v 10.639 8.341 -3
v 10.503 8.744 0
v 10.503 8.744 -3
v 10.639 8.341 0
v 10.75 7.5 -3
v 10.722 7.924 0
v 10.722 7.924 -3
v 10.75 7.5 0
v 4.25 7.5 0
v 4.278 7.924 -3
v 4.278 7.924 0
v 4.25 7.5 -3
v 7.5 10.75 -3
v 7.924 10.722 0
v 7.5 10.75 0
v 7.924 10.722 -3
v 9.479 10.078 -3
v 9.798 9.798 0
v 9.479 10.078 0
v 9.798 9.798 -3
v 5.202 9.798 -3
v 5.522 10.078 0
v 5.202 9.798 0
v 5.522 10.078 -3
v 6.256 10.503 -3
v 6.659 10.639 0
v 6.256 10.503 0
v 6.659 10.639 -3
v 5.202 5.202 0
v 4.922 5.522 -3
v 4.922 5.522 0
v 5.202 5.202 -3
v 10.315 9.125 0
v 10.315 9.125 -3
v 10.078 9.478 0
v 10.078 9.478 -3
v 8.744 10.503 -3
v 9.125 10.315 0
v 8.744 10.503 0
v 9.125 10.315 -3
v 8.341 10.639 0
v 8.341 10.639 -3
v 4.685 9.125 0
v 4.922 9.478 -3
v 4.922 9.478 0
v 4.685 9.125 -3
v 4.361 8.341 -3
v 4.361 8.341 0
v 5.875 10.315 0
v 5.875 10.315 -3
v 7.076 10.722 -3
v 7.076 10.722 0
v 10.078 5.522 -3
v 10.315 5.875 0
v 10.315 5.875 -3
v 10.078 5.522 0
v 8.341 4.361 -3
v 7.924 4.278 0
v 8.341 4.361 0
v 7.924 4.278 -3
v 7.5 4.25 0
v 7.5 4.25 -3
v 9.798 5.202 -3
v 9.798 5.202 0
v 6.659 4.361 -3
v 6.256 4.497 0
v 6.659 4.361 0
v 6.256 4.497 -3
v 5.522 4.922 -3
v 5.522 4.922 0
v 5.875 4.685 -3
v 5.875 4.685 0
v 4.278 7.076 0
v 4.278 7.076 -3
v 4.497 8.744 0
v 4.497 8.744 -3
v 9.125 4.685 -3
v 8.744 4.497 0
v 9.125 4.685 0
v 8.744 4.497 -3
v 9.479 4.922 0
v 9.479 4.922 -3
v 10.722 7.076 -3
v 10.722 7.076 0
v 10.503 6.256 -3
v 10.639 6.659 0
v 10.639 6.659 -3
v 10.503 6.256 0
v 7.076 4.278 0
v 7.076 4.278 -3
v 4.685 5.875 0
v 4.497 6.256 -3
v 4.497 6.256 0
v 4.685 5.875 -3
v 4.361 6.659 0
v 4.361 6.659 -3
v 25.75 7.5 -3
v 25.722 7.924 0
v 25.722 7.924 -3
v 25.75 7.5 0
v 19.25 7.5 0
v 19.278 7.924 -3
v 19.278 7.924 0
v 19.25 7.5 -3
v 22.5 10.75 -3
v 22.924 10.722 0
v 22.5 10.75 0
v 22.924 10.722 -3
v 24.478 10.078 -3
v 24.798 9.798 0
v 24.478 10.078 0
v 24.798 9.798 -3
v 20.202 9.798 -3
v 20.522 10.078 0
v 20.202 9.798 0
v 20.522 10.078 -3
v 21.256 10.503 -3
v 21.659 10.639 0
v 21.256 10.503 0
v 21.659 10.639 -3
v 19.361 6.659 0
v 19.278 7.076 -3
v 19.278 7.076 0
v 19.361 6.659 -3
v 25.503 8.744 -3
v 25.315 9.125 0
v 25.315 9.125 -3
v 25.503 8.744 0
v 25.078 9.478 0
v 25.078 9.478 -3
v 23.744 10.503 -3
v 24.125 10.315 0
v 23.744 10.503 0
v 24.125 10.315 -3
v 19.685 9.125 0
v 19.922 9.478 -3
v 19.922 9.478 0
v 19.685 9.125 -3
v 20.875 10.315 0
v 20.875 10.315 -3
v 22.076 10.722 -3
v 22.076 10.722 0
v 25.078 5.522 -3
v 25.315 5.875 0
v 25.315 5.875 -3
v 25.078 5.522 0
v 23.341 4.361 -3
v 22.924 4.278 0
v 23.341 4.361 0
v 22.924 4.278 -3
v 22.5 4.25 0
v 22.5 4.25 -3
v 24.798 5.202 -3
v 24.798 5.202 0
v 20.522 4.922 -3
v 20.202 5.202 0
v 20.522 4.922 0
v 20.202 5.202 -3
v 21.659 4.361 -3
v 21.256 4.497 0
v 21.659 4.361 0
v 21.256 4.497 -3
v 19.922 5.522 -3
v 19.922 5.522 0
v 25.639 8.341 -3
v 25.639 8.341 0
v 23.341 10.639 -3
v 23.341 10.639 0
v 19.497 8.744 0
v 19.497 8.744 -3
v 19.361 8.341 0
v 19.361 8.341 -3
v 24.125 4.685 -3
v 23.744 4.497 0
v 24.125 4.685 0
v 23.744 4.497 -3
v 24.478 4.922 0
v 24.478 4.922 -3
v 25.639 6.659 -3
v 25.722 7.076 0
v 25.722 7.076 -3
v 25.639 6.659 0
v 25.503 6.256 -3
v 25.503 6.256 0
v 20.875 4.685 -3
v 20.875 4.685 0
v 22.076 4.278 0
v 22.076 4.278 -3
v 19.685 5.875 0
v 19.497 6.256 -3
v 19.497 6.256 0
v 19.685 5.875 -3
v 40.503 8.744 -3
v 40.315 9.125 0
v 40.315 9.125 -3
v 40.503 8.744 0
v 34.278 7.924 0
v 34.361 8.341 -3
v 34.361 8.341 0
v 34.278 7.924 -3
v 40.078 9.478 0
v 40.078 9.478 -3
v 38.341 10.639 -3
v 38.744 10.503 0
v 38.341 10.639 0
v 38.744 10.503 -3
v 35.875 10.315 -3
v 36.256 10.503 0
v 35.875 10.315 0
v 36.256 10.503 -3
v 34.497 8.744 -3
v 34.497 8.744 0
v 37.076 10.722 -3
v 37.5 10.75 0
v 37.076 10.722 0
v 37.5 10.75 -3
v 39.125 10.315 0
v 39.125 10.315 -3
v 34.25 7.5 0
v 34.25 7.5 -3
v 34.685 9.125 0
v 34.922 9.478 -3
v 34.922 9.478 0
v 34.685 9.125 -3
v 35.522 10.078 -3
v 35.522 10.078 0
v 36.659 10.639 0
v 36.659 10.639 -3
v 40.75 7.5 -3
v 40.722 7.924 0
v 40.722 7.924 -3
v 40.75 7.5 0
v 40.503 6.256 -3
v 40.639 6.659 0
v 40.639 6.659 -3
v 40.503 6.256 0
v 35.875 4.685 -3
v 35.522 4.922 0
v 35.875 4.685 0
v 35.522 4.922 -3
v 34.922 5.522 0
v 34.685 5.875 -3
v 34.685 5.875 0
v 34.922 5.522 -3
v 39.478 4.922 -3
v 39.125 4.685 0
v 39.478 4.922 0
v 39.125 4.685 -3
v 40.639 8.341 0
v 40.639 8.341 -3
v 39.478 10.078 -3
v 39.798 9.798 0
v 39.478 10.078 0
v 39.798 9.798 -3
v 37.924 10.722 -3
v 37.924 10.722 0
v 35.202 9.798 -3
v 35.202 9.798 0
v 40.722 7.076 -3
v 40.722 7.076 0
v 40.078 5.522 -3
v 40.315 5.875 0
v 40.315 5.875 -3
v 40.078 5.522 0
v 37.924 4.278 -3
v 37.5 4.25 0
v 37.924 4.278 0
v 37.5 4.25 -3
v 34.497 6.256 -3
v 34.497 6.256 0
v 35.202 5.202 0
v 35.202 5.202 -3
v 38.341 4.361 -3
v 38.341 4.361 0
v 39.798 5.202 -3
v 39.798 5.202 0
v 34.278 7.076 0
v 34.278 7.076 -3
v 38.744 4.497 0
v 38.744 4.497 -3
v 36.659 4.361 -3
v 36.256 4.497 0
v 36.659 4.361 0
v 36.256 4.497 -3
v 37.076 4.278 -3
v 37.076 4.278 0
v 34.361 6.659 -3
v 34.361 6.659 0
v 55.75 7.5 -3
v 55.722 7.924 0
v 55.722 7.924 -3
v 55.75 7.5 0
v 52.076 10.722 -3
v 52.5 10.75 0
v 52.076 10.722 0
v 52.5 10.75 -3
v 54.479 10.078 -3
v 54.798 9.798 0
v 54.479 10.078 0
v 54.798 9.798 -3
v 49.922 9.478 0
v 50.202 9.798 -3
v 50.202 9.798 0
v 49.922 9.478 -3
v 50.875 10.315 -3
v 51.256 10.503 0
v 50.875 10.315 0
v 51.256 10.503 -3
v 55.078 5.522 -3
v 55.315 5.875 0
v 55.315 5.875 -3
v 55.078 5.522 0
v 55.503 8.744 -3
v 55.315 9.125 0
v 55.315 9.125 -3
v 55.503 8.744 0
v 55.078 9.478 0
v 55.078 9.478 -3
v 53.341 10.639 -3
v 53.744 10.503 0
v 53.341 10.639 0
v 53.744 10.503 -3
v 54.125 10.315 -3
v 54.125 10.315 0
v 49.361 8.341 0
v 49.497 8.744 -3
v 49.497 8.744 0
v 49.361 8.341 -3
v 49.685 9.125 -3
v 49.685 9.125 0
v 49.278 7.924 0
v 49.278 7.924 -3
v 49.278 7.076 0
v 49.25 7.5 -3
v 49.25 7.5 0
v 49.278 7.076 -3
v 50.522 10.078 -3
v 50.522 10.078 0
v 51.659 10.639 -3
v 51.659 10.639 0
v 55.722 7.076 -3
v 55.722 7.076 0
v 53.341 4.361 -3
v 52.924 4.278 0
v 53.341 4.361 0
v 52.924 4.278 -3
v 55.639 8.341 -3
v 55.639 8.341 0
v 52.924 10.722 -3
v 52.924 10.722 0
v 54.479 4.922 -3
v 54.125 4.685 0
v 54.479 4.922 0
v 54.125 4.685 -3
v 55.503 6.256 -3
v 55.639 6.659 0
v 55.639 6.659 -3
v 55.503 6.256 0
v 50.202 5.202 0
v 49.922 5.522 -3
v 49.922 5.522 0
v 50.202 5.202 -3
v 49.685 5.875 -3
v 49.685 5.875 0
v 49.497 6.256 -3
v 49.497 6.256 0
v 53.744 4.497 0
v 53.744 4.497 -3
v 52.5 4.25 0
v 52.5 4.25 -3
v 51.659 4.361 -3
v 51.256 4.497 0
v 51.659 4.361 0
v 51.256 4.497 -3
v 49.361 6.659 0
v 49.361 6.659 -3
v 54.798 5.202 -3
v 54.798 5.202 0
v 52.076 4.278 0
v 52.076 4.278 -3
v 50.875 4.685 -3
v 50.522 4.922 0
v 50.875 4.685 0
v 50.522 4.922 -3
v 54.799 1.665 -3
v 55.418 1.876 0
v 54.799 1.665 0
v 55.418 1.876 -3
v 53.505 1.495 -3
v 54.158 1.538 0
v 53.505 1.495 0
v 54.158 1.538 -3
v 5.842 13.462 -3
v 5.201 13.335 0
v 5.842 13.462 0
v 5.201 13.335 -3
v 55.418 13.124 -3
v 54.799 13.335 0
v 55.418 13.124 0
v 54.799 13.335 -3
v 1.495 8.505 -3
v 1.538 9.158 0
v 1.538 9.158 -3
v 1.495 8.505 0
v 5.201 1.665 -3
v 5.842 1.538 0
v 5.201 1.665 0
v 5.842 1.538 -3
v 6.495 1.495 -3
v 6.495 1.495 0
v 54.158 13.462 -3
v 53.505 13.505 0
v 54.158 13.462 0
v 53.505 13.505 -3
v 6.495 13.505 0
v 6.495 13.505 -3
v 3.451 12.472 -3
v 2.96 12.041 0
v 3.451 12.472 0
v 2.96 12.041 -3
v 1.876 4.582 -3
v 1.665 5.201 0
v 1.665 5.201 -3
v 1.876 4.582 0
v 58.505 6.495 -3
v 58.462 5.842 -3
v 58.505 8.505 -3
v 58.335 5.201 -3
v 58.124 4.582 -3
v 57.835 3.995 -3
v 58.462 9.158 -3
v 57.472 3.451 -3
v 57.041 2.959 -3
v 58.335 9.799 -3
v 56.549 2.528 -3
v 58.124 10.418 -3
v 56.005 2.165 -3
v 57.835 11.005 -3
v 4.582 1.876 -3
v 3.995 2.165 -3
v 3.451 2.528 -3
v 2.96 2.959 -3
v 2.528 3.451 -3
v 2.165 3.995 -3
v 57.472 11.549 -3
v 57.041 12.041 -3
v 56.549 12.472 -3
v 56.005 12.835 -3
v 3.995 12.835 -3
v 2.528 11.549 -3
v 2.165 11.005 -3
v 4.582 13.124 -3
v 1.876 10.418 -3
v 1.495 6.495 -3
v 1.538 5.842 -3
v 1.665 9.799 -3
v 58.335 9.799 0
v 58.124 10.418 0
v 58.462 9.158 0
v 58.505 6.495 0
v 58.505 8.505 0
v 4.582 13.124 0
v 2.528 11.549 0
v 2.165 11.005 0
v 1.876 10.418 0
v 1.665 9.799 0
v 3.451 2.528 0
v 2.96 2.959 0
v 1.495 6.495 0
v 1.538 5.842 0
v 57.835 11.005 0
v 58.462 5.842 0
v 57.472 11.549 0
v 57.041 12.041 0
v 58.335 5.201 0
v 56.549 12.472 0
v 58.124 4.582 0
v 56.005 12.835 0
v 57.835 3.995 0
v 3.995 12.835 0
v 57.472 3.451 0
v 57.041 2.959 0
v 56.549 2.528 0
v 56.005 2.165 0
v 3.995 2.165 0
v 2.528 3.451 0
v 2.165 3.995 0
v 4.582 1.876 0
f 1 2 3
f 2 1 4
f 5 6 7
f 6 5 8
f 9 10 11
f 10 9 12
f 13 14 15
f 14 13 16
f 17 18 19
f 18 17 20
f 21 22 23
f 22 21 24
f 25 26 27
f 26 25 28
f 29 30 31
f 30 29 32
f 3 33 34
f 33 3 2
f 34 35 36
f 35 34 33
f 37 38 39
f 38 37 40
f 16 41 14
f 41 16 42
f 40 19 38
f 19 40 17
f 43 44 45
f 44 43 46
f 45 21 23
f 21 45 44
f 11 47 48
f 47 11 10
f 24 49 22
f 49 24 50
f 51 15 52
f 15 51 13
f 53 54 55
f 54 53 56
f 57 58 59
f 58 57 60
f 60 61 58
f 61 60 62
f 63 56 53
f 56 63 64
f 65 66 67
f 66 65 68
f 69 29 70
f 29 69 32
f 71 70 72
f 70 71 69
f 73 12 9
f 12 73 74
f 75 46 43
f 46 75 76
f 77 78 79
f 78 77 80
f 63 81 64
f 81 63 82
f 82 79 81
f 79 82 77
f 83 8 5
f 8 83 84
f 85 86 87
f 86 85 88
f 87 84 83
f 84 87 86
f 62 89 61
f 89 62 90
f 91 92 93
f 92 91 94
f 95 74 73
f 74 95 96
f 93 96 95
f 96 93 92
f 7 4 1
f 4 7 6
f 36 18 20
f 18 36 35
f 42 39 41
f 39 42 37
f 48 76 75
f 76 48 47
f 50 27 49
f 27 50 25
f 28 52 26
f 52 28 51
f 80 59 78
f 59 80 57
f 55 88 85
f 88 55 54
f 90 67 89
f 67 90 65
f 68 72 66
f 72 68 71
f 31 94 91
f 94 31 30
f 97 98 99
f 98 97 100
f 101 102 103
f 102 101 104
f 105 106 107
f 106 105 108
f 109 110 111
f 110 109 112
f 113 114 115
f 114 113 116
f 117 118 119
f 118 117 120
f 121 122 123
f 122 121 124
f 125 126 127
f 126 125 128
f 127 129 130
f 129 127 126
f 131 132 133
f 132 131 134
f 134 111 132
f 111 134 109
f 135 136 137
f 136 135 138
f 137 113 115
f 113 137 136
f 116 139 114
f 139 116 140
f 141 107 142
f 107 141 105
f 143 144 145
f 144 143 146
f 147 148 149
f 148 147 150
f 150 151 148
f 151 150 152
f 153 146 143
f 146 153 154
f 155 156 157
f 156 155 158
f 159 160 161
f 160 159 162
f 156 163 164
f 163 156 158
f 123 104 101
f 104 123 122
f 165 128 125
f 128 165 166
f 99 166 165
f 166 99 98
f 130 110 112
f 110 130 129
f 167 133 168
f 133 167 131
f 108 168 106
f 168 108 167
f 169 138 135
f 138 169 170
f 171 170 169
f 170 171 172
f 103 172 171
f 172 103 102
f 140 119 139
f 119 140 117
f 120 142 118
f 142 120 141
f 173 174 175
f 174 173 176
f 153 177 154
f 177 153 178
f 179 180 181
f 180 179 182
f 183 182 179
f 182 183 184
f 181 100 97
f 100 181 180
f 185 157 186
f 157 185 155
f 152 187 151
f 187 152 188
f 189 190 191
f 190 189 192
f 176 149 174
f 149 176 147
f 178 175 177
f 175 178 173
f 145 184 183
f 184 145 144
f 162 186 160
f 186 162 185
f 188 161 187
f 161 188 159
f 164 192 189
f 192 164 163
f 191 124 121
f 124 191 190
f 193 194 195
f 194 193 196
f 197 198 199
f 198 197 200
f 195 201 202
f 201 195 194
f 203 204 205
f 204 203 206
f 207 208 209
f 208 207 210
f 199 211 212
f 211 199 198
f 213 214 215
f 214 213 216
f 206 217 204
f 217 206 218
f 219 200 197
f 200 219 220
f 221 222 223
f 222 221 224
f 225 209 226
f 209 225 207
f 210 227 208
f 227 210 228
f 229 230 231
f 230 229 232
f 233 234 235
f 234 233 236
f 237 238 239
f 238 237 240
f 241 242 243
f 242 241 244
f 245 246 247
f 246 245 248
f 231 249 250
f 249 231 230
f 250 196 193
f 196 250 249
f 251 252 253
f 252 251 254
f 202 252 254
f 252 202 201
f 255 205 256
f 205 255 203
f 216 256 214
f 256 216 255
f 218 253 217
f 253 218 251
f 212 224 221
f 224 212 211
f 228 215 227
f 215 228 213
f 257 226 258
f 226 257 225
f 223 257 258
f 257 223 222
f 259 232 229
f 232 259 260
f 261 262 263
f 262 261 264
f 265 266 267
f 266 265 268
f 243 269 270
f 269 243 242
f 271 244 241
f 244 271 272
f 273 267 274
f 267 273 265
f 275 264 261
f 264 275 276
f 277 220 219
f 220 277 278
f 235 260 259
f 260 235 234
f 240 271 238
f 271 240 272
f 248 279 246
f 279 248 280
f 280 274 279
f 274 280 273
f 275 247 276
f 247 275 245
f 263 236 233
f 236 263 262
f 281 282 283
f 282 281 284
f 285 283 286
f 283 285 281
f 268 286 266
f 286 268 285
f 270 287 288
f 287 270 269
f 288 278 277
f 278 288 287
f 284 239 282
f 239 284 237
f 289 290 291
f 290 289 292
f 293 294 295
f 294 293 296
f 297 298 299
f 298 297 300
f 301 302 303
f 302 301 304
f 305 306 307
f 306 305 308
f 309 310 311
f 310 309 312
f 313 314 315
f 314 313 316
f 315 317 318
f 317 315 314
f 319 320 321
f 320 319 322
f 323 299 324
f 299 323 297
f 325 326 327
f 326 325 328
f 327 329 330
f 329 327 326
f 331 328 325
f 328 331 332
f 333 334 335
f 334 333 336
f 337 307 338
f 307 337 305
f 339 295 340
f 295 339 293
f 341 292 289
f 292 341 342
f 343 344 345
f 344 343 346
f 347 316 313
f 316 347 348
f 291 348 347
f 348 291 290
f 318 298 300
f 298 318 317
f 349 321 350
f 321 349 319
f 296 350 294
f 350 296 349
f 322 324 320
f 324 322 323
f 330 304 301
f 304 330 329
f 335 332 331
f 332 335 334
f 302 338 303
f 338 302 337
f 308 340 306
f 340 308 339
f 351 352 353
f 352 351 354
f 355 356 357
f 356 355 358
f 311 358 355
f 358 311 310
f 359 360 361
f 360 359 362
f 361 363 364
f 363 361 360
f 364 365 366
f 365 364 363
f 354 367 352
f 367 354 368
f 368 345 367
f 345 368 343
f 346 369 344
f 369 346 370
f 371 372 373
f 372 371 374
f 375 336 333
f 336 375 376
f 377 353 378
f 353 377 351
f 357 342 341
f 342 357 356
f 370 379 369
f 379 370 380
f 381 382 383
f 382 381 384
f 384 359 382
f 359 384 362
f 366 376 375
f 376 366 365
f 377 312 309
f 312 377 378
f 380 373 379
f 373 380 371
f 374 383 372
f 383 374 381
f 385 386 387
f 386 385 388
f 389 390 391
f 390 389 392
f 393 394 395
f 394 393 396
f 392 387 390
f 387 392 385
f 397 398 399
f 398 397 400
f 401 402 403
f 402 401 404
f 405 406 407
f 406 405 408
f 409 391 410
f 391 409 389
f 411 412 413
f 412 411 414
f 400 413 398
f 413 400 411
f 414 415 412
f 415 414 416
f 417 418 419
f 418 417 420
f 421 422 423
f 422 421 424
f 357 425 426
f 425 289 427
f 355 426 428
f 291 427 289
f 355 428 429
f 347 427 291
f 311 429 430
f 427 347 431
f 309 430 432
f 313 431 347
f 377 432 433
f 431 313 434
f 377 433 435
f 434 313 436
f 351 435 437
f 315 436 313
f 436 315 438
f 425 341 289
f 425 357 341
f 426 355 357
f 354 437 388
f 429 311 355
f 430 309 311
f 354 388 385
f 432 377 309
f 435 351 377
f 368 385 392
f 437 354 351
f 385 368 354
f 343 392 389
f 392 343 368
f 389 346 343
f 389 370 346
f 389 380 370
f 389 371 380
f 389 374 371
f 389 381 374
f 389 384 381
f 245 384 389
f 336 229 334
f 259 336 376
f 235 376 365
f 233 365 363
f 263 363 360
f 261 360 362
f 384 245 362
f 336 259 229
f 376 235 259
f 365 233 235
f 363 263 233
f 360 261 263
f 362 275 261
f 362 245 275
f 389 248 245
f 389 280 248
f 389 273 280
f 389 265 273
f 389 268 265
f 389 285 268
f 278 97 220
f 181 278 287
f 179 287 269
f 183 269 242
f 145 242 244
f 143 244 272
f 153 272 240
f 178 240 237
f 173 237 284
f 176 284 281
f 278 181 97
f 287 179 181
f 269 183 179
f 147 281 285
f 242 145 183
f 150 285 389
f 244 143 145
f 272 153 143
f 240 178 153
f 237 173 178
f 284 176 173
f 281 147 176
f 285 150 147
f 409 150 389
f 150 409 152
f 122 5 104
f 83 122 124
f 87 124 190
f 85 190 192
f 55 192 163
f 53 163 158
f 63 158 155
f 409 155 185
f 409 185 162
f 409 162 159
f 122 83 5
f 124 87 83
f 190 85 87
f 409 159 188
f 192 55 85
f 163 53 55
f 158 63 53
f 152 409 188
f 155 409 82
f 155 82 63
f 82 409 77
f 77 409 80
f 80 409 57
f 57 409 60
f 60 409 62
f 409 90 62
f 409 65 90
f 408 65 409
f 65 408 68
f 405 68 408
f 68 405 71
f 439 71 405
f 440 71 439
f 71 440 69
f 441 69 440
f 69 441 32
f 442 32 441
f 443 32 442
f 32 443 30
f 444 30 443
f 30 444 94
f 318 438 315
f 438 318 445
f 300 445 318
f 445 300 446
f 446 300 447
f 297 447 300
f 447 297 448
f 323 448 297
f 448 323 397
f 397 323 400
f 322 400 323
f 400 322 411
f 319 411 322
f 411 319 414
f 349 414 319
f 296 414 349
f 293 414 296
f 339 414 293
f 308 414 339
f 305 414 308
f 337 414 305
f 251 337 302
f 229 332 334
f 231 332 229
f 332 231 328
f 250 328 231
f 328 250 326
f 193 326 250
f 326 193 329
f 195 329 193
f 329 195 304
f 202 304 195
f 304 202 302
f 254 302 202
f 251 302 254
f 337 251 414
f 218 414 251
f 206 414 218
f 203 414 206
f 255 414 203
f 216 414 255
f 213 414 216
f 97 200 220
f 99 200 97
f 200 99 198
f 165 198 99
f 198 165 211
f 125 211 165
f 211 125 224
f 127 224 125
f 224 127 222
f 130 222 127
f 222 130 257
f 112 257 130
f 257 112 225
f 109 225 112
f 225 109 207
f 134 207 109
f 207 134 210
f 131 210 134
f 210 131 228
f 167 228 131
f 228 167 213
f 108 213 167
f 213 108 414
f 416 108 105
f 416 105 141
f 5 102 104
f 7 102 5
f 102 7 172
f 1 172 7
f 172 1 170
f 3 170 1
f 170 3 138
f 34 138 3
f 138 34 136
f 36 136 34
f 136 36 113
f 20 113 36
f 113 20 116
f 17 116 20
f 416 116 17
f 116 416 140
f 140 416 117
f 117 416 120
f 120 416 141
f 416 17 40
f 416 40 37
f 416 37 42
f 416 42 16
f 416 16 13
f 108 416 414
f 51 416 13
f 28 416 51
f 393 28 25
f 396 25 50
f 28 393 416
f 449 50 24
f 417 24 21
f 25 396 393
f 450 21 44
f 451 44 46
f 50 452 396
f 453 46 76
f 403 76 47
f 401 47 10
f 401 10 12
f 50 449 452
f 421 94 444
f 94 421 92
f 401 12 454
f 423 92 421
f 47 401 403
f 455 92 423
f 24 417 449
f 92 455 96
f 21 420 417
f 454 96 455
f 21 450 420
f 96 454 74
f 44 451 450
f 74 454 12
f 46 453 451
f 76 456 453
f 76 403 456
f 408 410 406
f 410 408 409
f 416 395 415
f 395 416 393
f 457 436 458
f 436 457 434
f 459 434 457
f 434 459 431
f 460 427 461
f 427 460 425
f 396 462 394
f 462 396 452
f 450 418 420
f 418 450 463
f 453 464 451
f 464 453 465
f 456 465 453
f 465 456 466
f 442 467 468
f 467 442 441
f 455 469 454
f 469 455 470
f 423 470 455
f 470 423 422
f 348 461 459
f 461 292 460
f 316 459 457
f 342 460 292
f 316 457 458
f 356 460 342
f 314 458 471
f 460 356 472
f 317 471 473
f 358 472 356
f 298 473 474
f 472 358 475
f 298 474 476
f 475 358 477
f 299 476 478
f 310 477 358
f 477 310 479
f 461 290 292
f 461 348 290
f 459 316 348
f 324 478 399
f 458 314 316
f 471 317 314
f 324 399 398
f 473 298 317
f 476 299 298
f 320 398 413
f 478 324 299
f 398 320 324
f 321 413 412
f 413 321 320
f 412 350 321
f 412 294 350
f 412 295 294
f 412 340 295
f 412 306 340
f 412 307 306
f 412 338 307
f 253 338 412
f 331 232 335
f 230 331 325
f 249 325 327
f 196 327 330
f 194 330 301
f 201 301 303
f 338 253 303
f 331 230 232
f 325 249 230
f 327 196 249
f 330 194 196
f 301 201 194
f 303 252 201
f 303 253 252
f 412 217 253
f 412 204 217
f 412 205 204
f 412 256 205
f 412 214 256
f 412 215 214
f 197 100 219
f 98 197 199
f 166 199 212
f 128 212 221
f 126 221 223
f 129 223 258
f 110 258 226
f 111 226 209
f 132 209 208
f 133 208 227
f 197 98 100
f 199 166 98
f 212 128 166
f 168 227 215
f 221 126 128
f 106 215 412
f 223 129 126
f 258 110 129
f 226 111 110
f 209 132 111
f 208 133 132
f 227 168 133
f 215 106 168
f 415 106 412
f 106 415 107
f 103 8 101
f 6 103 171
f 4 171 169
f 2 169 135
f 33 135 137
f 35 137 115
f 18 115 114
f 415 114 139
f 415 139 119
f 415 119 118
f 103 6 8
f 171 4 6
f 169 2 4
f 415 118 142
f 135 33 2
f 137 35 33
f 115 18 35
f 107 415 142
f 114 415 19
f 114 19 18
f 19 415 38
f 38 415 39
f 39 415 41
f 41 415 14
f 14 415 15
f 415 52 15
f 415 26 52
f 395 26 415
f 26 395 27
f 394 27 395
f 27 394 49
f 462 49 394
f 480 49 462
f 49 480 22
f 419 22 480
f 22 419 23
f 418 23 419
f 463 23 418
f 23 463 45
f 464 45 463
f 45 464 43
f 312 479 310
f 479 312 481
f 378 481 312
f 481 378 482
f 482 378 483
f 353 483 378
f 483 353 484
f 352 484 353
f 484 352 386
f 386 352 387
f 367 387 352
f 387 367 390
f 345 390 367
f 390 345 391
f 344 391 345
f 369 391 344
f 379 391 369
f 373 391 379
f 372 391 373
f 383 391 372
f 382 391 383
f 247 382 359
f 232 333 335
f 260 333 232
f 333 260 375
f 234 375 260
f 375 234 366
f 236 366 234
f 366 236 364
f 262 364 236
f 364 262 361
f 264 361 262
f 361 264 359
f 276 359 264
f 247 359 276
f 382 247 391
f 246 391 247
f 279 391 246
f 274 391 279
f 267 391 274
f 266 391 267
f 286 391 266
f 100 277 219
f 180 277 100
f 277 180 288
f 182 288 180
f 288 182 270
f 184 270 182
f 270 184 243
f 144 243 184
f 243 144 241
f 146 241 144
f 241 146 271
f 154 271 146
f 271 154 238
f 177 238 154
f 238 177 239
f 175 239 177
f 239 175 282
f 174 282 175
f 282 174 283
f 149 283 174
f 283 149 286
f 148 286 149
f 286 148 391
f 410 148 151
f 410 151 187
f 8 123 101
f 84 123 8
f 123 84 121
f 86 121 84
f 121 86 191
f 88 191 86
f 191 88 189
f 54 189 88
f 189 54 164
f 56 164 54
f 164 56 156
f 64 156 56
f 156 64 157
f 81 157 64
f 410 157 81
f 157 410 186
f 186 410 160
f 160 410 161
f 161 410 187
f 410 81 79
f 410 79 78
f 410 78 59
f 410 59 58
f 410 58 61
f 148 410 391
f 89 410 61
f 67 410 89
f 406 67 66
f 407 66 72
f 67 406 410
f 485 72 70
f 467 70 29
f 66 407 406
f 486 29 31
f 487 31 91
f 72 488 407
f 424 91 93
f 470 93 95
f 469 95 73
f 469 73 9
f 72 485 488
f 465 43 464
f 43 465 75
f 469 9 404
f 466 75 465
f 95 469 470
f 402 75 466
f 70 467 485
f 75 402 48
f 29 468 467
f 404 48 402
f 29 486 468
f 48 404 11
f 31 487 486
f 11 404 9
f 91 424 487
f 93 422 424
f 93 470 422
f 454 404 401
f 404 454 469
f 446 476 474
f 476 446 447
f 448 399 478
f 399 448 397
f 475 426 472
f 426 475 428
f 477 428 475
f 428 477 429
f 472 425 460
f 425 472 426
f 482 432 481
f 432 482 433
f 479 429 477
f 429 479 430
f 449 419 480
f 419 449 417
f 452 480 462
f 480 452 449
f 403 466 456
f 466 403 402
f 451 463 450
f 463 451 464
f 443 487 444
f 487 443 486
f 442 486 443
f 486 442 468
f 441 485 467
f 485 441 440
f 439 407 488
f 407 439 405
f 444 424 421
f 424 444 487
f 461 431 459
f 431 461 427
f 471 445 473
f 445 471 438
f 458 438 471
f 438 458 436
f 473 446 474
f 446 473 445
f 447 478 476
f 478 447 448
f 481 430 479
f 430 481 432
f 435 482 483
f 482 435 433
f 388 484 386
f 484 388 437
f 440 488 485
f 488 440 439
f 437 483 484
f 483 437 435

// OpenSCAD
// Generated by SolidPython 1.1.3 on 2022-09-14 10:16:25
$fn = 48;


difference() {
	union() {
		color(alpha = 1.0000000000, c = "Gold") {
			translate(v = [30.0000000000, 7.5000000000, 0]) {
				rotate(a = [0, 0, 0]) {
					translate(v = [0, 0, -3]) {
						linear_extrude(height = 3) {
							offset(r = 5) {
								square(center = true, size = [47.0100000000, 2.0100000000]);
							}
						}
					}
				}
			}
		}
	}
	union() {
		color(alpha = 1.0000000000, c = "Gold") {
			translate(v = [7.5000000000, 7.5000000000, 0]) {
				rotate(a = [0, 0, 0]) {
					translate(v = [0, 0, -250]) {
						cylinder(h = 500, r = 3.2500000000);
					}
				}
			}
		}
		color(alpha = 1.0000000000, c = "Gold") {
			translate(v = [22.5000000000, 7.5000000000, 0]) {
				rotate(a = [0, 0, 0]) {
					translate(v = [0, 0, -250]) {
						cylinder(h = 500, r = 3.2500000000);
					}
				}
			}
		}
		color(alpha = 1.0000000000, c = "Gold") {
			translate(v = [37.5000000000, 7.5000000000, 0]) {
				rotate(a = [0, 0, 0]) {
					translate(v = [0, 0, -250]) {
						cylinder(h = 500, r = 3.2500000000);
					}
				}
			}
		}
		color(alpha = 1.0000000000, c = "Gold") {
			translate(v = [52.5000000000, 7.5000000000, 0]) {
				rotate(a = [0, 0, 0]) {
					translate(v = [0, 0, -250]) {
						cylinder(h = 500, r = 3.2500000000);
					}
				}
			}
		}
	}
}
/***********************************************
*********      SolidPython code:      **********
************************************************
 
import subprocess

from solid.objects import *
from solid import scad_render_to_file, scad_render

import os

##################################################################################################################################################
##################################################################################################################################################
##################################################################################################################################################
##################################################################################################################################################
######  DIMENSION STUFF
##################################################################################################################################################
##################################################################################################################################################
##################################################################################################################################################
##################################################################################################################################################


mode = "3DPR"
#mode = "LAZE"
#mode = "TURE"
#mode = ""


######  Countersunk
countersunkM = []
WIDTH = 0
DEPTH = 1
countersunkM1width = 0; countersunkM1depth = 0; countersunkM2width = 0; countersunkM2depth = 0
countersunkM3width = 0
countersunkM3depth = 0
countersunkM4width = 0
countersunkM4depth = 0
countersunkM5width = 0
countersunkM5depth = 0
countersunkM6width = 0
countersunkM6depth = 0

######  Holes
holeM = []
holeM1 = 0
holeM2 = 0
holeM3 = 0
holeM4 = 0
holeM5 = 0
holeM6 = 0

######  Nuts
nutM = []
NUTWIDTH = 0
NUTDEPTH = 1
nutM1width = 0
nutM1depth = 0
nutM2width = 0
nutM2depth = 0
nutM3width = 0
nutM3depth = 0
nutM4width = 0
nutM4depth = 0
nutM5width = 0
nutM5depth = 0
nutM6width = 0
nutM6depth = 0

######  OOEB
ooebPinWidth = 0
ooebPinWidthWide = 0


######  Colors
colDefault = "Gold"

colOOEBbase = colDefault

colLEDRed = "red"
colWire = "gray"
    ######  Resistor
colRes = list()
colResistor = "beige"

colResBlack = "black"
colRes.append(colResBlack)
colResBrown = "brown"
colRes.append(colResBrown)
colResRed = "red"
colRes.append(colResRed)
colResOrange = "orange"
colRes.append(colResOrange)
colResYellow = "yellow"
colRes.append(colResYellow)
colResGreen = "green"
colRes.append(colResGreen)
colResBlue = "blue"
colRes.append(colResBlue)
colResPurple = "purple"
colRes.append(colResPurple)
colResGray = "gray"
colRes.append(colResGray)
colResWhite = "white"
colRes.append(colResWhite)





def changeMode(m="3DPR"):
    #print("####################################################      CHANGING MODES TO: " + m)
    global mode
    mode = m
    ######  Countersunk
    global countersunkM, countersunkM1width, countersunkM1depth, countersunkM2width, countersunkM2depth, countersunkM3width, countersunkM3depth, countersunkM4width, countersunkM4depth, countersunkM5width, countersunkM5depth, countersunkM6width, countersunkM6depth
    countersunkM = []
    countersunkM.append([0,0])
    countersunkM1width = 0 if mode== "3DPR" else 0
    countersunkM1depth = 0 if mode== "3DPR" else 0
    countersunkM.append([countersunkM1width,countersunkM1depth])
    countersunkM2width = 0 if mode== "3DPR" else 0
    countersunkM2depth = 0 if mode== "3DPR" else 0
    countersunkM.append([countersunkM2width,countersunkM2depth])
    countersunkM3width = 5.5/2+0.6 if mode== "3DPR" else 5.5/2
    countersunkM3depth = 1.7 if mode== "3DPR" else 1.7
    countersunkM.append([countersunkM3width,countersunkM3depth])
    countersunkM4width = 0 if mode== "3DPR" else 0
    countersunkM4depth = 0 if mode== "3DPR" else 0
    countersunkM.append([countersunkM4width,countersunkM4depth])
    countersunkM5width = 0 if mode== "3DPR" else 0
    countersunkM5depth = 0 if mode== "3DPR" else 0
    countersunkM.append([countersunkM5width,countersunkM5depth])
    countersunkM6width = 0 if mode== "3DPR" else 0
    countersunkM6depth = 0 if mode== "3DPR" else 0
    countersunkM.append([countersunkM6width,countersunkM6depth])
    ######  Holes
    global holeM, holeM1, holeM2, holeM3, holeM4, holeM5, holeM6, holeM7, holeM8
    holeM = []
    holeM1 = 1.2/2 if mode== "3DPR" else 1/2
    holeM2 = 2.3/2 if mode== "3DPR" else 2/2
    holeM3 = 3.4/2 if mode== "3DPR" else 3/2
    holeM4 = 4.4/2 if mode== "3DPR" else 4/2
    holeM5 = 5.4/2 if mode== "3DPR" else 5/2
    holeM6 = 6.5/2 if mode== "3DPR" else 6/2
    holeM7 = 7.5/2 if mode== "3DPR" else 7/2
    holeM8 = 8.6/2 if mode== "3DPR" else 8/2
    holeM.append(0)
    holeM.append(holeM1)
    holeM.append(holeM2)
    holeM.append(holeM3)
    holeM.append(holeM4)
    holeM.append(holeM5)
    holeM.append(holeM6)
    holeM.append(holeM7)
    holeM.append(holeM8)
    #####  Nuts
    global nutM, nutM1width, nutM1depth, nutM2width, nutM2depth, nutM3width, nutM3depth, nutM4width, nutM4depth, nutM5width, nutM5depth, nutM6width, nutM6depth
    nutM = []
    nutM.append([0,0]) 
    #M1 Nut
    nutM1width = 0
    nutM1depth = 0
    nutM.append([nutM1width,nutM1depth])    
    #M2 Nut
    nutM2width = 0
    nutM2depth = 0
    nutM.append([nutM2width,nutM2depth])    
    #M3 Nut
    nutM3width = 6.05 if mode== "3DPR" else 5.5
    nutM3depth = 2.5 if mode== "3DPR" else 2.5
    nutM.append([nutM3width,nutM3depth])    
    #M4 Nut
    nutM4width = 0
    nutM4depth = 0
    nutM.append([nutM4width,nutM4depth])    
    #M5 Nut
    nutM5width = 0
    nutM5depth = 0
    nutM.append([nutM5width,nutM5depth])    
    #M6 Nut
    nutM6width = 11 if mode== "3DPR" else 10
    nutM6depth = 5 if mode== "3DPR" else 5
    nutM.append([nutM6width,nutM6depth])    

    ######  OOEB
    global ooebPinWidth,  ooebPinWidthWide

    ooebPinWidth = 0.6
    if(mode=="3DPR" or mode=="LAZE"):
        ooebPinWidth = 0.6 + 0.6
    ooebPinWidthWide = 1.2
    if(mode=="3DPR" or mode=="LAZE"):
        ooebPinWidthWide = 1.2 + 0.6


changeMode()


""""    
holeM12D = s=="3DPR" ? 1.4/2 : 1.2/2;
holeM16D = s=="3DPR" ? 1.8/2 : 1.6/2;
holeM2 = s=="3DPR" ? 2.3/2 : 2/2;
holeM25D = s=="3DPR" ? 2.8/2 : 2.5/2;
holeM27D = s=="3DPR" ? 3.1/2 : 2.7/2;    
holeM3 = s=="3DPR" ? 3.4/2 : 3/2;
holeM35D = s=="3DPR" ? 3.9/2 : 35/2;
holeM4 = s=="3DPR" ? 4.4/2 : 4/2;
holeM5 = s=="3DPR" ? 5.4/2 : 5/2;
holeM6 = s=="3DPR" ? 6.5/2 : 6/2;
holeM6Minus = s=="3DPR" ? 5.8/2 : 5.9/2;
holeM7 = s=="3DPR" ? 7.5/2 : 7/2;
holeM8 = s=="3DPR" ? 8.6/2 : 8/2;
holeM9 = s=="3DPR" ? 9.6/2 : 9/2;
holeM10 = s=="3DPR" ? 10.6/2 : 10/2;
holeM11 = s=="3DPR" ? 11.6/2 : 11/2;
holeM12 = s=="3DPR" ? 12.6/2 : 12/2;
holeM13 = s=="3DPR" ? 13.6/2 : 13/2;
holeM14 = s=="3DPR" ? 14.6/2 : 14/2;
holeM15 = s=="3DPR" ? 15.6/2 : 15/2;
holeM16 = s=="3DPR" ? 16.6/2 : 16/2;
holeM17 = s=="3DPR" ? 17.6/2 : 17/2;
holeM18 = s=="3DPR" ? 18.6/2 : 18/2;
holeM19 = s=="3DPR" ? 19.6/2 : 19/2;
holeM20 = s=="3DPR" ? 20.6/2 : 20/2;
"""

##################################################################################################################################################
##################################################################################################################################################
##################################################################################################################################################
##################################################################################################################################################
######  REGULAR STUFF
##################################################################################################################################################
##################################################################################################################################################
##################################################################################################################################################
##################################################################################################################################################


def setMode(mode="3DPR"):
    changeMode(mode)

def getMode():
    return mode



def saveToScad(fileName, parts):
    dir =  os.path.dirname(os.path.abspath(fileName))
    Path(dir).mkdir(parents=True, exist_ok=True)
    file_out = scad_render_to_file(parts, fileName, file_header=f'$fn = 48;')


def saveToDxf(fileIn, fileOut=""):
    if fileOut == "":
        fileOut = fileIn.replace(".scad",".dxf")
    saveToFile(fileIn, fileOut)
    
def saveToPng(fileIn, fileOut="",extra="--render"):
    if fileOut == "":
        fileOut = fileIn.replace(".scad",".png")
    saveToFile(fileIn, fileOut)

def saveToStl(fileIn, fileOut=""):
    if fileOut == "":
        fileOut = fileIn.replace(".scad",".stl")
    saveToFile(fileIn, fileOut)
    
def saveToSvg(fileIn, fileOut=""):
    if fileOut == "":
        fileOut = fileIn.replace(".scad",".svg")
    saveToFile(fileIn, fileOut)

def saveToFile(fileIn, fileOut,extra=""):
    extra = extra + " --colorscheme Tomorrow"

    launchStr = 'openscad -o "' + fileOut + '"' + extra + ' "' + fileIn + '"'
    print("            saveToFile launch string: " + launchStr)
    subprocess.run(launchStr)
    x=0



def insert(item,pos=[None,None,None],x=0,y=0,z=0,ex=0,size=[None,None,None],length=0,rot=[None,None,None],rotX=0,rotY=0,rotZ=0,width=0,height=0,depth=100,rad=0,rad2=0,color=colDefault,alpha=1,OOwidth=0,OOheight=0,holes=True,negative=True, name=""):
    return OPSCInsert(item,pos,x,y,z,ex,size,length,rot,rotX,rotY,rotZ,width,height,depth,rad,rad2,color,alpha,OOwidth,OOheight,holes,negative,name)


def OPSCInsert(item,pos=[None,None,None],x=0,y=0,z=0,ex=0,size=[None,None,None],length=0,rot=[None,None,None],rotX=0,rotY=0,rotZ=0,width=0,height=0,depth=100,rad=0,rad2=0,col=colDefault,alpha=1,OOwidth=0,OOheight=0,holes=True,negative=True, name=""):
    
    """
        color(color,alpha){
            translate([x,y,z]){
                    rotate([rotX,rotY,rotZ]){
    """
    returnValue = ""

    #print(pos)

    if pos[0] != None:
        x=pos[0]
        y=pos[1]
        z=pos[2]
    if rot[0] != None:
        rotX=rot[0]
        rotY=rot[1]
        rotZ=rot[2]
    
    returnValue = color(col)(translate((x,y,z))(
                            rotate((rotX,rotY,rotZ))(
                                OPSCInsertIf(item,pos,x,y,z,ex,size,length,rot,rotX,rotY,rotZ,width,height,depth,rad,rad2,col,alpha,OOwidth,OOheight,holes,negative,name)
                            )
                        ))
                
    

    return returnValue

def OPSCInsertIf(item,pos=[None,None,None],x=0,y=0,z=0,ex=0,size=[None,None,None],length=0,rot=[None,None,None],rotX=0,rotY=0,rotZ=0,width=0,height=0,depth=100,rad=0,rad2=0,color=colDefault,alpha=1,OOwidth=0,OOheight=0,holes=True,negative=True, name=""):
    returnValue = cube([10,10,10])

    if size[0] != None:
        width=size[0]
        height=size[1]
        depth=size[2]

    #print("    OPSCInsert item:" + str(item) + " at:[" + str(x) + "," + str(y) + "," + str(z) + "] size: [" + str(width) + "," + str(height) + "," + str(depth) + "]")

    if(item=="cube"):
        returnValue =  translate([0,0,-depth/2])(cube([width,height,depth],center=True))
    elif(item=="cylinder"):        
        returnValue = translate([0,0,-depth/2])(cylinder(r=rad,h=depth,center=True))
    elif(item=="sphere"):        
        returnValue = translate([0,0,-rad])(sphere(r=rad))
    elif(item=="plane"):
        if depth == 100:
            returnValue = insert("cube",size=[1000,1000,0.1],color=color)            
        else:
            returnValue = insert("cube",size=[1000,1000,depth],color=color)                        
    elif(item=="cubeRounded"):
        if(rad == 0):
                            rad = 5
        returnValue =  translate([0,0,-depth])(
                        linear_extrude(height=depth)(                        
                            offset(r=rad)(
                                square((width-rad*2+.01,height-rad*2+.01),center=True)
                                )
                            )
        )
    ######  Countersunk
    elif(item == "countersunkM1" or item == "csM1" ):
        returnValue = OSPCgetCountersunk(rad=1)
    elif(item == "countersunkM2" or item == "csM2" ):
        returnValue = OSPCgetCountersunk(rad=2)
    elif(item == "countersunkM3" or item == "csM3" ):
        returnValue = OSPCgetCountersunk(rad=3)
    elif(item == "countersunkM4" or item == "csM4" ):
        returnValue = OSPCgetCountersunk(rad=4)
    elif(item == "countersunkM5" or item == "csM5" ):
        returnValue = OSPCgetCountersunk(rad=5)
    elif(item == "countersunkM6" or item == "csM6" ):
        returnValue = OSPCgetCountersunk(rad=6)
    elif(item == "countersunk" or item == "cs"):
        returnValue = OSPCgetCountersunk(rad=rad)


    ######  Holes    
    elif(item == "holeM1"):
        returnValue = OSPCgetHole(rad=1)
    elif(item == "holeM2"):
        returnValue = OSPCgetHole(rad=2)
    elif(item == "holeM3"):
        returnValue = OSPCgetHole(rad=3)
    elif(item == "holeM4"):
        returnValue = OSPCgetHole(rad=4)
    elif(item == "holeM5"):
        returnValue = OSPCgetHole(rad=5)
    elif(item == "holeM6"):
        returnValue = OSPCgetHole(rad=6)
    elif(item == "hole"):
        returnValue = OSPCgetHole(rad=rad)

    ######  Nuts
    elif(item == "nutM1"):
        returnValue = OSPCgetNut(rad=1,depth=depth)
    elif(item == "nutM2"):
        returnValue = OSPCgetNut(rad=2,depth=depth)
    elif(item == "nutM3"):
        returnValue = OSPCgetNut(rad=3,depth=depth)
    elif(item == "nutM4"):
        returnValue = OSPCgetNut(rad=4,depth=depth)
    elif(item == "nutM5"):
        returnValue = OSPCgetNut(rad=5,depth=depth)
    elif(item == "nutM6"):
        returnValue = OSPCgetNut(rad=6,depth=depth)
    elif(item == "nut"):
        returnValue = OSPCgetNut(rad=rad,depth=depth)
    return returnValue

                

def OSPCgetHole(rad):
    return translate([0,0,-250])(cylinder(r=holeM[rad],h=500))

def OSPCgetNut(rad,depth):
    depth = nutM[rad][NUTDEPTH] if depth==100 else depth
    returnValue = OPSChexagon(nutM[rad][NUTWIDTH],depth=depth)
    return returnValue

def OSPCgetCountersunk(rad):
    depth=countersunkM[rad][DEPTH]
    returnValue = translate([0,0,-depth])(cylinder(h=depth,r2=countersunkM[rad][WIDTH],r1=holeM[rad]))
    return returnValue

def OPSChexagon(width,depth):
    cutter = item()
    wid=width*2
    cutter.addPos(insert("cube",pos=[wid/2+width/2,0,0],size=[wid,wid,depth]))
    cutter.addPos(insert("cube",pos=[-wid/2-width/2,0,0],size=[wid,wid,depth]))

    cut = cutter.getPart()
    #print(depth)
    returnValue = difference()(
        translate([0,0,-depth/2])(cube([wid,wid,depth],center=True)),
        cut,
        rotate([0,0,60])(cut),
        rotate([0,0,-60])(cut)
    )

    return returnValue




class item:

    def __init__(self):
        self.posItems=list()
        self.negItems=list()

    def isEmpty(self):        
        testString = scad_render(self.getPart())
        #print("test String length: " + str(len(testString)))
        returnValue = False
        if len(testString) == 270:            
            returnValue = True
        return returnValue

    def addPos(self,part):
        self.posItems.append(part)
    def addNeg(self,part):
        self.negItems.append(part)

    def getPart(self):
        returnValue = difference()(
            union()(self.posItems),
            union()(self.negItems)
        )
        return returnValue

    def getLaser(self,start=0,layers=1,thickness=-3,tileDif=200):
        rv= []

        for x in range(layers):
            rv.append(translate([0,x*tileDif,0])(
                    projection()(
                        intersection()(
                            insert("plane",z=start+x*thickness),
                            self.getPart()
                        )
                    )
            )
            )
        return union()(rv)

    def getSplit(self,start=0,depth=6,tileDif=200):
        rv= []

        rv.append(translate([0,0,0])(
            intersection()(
                insert("cube",size=[100,100,depth],z=start),
                self.getPart()
            )
        )
        )

        rv.append(translate([0,tileDif,depth])(
            intersection()(
                insert("cube",size=[100,100,depth],z=start-depth),
                self.getPart()
            )
        )
        )        
        return union()(rv)


 
 
************************************************/
